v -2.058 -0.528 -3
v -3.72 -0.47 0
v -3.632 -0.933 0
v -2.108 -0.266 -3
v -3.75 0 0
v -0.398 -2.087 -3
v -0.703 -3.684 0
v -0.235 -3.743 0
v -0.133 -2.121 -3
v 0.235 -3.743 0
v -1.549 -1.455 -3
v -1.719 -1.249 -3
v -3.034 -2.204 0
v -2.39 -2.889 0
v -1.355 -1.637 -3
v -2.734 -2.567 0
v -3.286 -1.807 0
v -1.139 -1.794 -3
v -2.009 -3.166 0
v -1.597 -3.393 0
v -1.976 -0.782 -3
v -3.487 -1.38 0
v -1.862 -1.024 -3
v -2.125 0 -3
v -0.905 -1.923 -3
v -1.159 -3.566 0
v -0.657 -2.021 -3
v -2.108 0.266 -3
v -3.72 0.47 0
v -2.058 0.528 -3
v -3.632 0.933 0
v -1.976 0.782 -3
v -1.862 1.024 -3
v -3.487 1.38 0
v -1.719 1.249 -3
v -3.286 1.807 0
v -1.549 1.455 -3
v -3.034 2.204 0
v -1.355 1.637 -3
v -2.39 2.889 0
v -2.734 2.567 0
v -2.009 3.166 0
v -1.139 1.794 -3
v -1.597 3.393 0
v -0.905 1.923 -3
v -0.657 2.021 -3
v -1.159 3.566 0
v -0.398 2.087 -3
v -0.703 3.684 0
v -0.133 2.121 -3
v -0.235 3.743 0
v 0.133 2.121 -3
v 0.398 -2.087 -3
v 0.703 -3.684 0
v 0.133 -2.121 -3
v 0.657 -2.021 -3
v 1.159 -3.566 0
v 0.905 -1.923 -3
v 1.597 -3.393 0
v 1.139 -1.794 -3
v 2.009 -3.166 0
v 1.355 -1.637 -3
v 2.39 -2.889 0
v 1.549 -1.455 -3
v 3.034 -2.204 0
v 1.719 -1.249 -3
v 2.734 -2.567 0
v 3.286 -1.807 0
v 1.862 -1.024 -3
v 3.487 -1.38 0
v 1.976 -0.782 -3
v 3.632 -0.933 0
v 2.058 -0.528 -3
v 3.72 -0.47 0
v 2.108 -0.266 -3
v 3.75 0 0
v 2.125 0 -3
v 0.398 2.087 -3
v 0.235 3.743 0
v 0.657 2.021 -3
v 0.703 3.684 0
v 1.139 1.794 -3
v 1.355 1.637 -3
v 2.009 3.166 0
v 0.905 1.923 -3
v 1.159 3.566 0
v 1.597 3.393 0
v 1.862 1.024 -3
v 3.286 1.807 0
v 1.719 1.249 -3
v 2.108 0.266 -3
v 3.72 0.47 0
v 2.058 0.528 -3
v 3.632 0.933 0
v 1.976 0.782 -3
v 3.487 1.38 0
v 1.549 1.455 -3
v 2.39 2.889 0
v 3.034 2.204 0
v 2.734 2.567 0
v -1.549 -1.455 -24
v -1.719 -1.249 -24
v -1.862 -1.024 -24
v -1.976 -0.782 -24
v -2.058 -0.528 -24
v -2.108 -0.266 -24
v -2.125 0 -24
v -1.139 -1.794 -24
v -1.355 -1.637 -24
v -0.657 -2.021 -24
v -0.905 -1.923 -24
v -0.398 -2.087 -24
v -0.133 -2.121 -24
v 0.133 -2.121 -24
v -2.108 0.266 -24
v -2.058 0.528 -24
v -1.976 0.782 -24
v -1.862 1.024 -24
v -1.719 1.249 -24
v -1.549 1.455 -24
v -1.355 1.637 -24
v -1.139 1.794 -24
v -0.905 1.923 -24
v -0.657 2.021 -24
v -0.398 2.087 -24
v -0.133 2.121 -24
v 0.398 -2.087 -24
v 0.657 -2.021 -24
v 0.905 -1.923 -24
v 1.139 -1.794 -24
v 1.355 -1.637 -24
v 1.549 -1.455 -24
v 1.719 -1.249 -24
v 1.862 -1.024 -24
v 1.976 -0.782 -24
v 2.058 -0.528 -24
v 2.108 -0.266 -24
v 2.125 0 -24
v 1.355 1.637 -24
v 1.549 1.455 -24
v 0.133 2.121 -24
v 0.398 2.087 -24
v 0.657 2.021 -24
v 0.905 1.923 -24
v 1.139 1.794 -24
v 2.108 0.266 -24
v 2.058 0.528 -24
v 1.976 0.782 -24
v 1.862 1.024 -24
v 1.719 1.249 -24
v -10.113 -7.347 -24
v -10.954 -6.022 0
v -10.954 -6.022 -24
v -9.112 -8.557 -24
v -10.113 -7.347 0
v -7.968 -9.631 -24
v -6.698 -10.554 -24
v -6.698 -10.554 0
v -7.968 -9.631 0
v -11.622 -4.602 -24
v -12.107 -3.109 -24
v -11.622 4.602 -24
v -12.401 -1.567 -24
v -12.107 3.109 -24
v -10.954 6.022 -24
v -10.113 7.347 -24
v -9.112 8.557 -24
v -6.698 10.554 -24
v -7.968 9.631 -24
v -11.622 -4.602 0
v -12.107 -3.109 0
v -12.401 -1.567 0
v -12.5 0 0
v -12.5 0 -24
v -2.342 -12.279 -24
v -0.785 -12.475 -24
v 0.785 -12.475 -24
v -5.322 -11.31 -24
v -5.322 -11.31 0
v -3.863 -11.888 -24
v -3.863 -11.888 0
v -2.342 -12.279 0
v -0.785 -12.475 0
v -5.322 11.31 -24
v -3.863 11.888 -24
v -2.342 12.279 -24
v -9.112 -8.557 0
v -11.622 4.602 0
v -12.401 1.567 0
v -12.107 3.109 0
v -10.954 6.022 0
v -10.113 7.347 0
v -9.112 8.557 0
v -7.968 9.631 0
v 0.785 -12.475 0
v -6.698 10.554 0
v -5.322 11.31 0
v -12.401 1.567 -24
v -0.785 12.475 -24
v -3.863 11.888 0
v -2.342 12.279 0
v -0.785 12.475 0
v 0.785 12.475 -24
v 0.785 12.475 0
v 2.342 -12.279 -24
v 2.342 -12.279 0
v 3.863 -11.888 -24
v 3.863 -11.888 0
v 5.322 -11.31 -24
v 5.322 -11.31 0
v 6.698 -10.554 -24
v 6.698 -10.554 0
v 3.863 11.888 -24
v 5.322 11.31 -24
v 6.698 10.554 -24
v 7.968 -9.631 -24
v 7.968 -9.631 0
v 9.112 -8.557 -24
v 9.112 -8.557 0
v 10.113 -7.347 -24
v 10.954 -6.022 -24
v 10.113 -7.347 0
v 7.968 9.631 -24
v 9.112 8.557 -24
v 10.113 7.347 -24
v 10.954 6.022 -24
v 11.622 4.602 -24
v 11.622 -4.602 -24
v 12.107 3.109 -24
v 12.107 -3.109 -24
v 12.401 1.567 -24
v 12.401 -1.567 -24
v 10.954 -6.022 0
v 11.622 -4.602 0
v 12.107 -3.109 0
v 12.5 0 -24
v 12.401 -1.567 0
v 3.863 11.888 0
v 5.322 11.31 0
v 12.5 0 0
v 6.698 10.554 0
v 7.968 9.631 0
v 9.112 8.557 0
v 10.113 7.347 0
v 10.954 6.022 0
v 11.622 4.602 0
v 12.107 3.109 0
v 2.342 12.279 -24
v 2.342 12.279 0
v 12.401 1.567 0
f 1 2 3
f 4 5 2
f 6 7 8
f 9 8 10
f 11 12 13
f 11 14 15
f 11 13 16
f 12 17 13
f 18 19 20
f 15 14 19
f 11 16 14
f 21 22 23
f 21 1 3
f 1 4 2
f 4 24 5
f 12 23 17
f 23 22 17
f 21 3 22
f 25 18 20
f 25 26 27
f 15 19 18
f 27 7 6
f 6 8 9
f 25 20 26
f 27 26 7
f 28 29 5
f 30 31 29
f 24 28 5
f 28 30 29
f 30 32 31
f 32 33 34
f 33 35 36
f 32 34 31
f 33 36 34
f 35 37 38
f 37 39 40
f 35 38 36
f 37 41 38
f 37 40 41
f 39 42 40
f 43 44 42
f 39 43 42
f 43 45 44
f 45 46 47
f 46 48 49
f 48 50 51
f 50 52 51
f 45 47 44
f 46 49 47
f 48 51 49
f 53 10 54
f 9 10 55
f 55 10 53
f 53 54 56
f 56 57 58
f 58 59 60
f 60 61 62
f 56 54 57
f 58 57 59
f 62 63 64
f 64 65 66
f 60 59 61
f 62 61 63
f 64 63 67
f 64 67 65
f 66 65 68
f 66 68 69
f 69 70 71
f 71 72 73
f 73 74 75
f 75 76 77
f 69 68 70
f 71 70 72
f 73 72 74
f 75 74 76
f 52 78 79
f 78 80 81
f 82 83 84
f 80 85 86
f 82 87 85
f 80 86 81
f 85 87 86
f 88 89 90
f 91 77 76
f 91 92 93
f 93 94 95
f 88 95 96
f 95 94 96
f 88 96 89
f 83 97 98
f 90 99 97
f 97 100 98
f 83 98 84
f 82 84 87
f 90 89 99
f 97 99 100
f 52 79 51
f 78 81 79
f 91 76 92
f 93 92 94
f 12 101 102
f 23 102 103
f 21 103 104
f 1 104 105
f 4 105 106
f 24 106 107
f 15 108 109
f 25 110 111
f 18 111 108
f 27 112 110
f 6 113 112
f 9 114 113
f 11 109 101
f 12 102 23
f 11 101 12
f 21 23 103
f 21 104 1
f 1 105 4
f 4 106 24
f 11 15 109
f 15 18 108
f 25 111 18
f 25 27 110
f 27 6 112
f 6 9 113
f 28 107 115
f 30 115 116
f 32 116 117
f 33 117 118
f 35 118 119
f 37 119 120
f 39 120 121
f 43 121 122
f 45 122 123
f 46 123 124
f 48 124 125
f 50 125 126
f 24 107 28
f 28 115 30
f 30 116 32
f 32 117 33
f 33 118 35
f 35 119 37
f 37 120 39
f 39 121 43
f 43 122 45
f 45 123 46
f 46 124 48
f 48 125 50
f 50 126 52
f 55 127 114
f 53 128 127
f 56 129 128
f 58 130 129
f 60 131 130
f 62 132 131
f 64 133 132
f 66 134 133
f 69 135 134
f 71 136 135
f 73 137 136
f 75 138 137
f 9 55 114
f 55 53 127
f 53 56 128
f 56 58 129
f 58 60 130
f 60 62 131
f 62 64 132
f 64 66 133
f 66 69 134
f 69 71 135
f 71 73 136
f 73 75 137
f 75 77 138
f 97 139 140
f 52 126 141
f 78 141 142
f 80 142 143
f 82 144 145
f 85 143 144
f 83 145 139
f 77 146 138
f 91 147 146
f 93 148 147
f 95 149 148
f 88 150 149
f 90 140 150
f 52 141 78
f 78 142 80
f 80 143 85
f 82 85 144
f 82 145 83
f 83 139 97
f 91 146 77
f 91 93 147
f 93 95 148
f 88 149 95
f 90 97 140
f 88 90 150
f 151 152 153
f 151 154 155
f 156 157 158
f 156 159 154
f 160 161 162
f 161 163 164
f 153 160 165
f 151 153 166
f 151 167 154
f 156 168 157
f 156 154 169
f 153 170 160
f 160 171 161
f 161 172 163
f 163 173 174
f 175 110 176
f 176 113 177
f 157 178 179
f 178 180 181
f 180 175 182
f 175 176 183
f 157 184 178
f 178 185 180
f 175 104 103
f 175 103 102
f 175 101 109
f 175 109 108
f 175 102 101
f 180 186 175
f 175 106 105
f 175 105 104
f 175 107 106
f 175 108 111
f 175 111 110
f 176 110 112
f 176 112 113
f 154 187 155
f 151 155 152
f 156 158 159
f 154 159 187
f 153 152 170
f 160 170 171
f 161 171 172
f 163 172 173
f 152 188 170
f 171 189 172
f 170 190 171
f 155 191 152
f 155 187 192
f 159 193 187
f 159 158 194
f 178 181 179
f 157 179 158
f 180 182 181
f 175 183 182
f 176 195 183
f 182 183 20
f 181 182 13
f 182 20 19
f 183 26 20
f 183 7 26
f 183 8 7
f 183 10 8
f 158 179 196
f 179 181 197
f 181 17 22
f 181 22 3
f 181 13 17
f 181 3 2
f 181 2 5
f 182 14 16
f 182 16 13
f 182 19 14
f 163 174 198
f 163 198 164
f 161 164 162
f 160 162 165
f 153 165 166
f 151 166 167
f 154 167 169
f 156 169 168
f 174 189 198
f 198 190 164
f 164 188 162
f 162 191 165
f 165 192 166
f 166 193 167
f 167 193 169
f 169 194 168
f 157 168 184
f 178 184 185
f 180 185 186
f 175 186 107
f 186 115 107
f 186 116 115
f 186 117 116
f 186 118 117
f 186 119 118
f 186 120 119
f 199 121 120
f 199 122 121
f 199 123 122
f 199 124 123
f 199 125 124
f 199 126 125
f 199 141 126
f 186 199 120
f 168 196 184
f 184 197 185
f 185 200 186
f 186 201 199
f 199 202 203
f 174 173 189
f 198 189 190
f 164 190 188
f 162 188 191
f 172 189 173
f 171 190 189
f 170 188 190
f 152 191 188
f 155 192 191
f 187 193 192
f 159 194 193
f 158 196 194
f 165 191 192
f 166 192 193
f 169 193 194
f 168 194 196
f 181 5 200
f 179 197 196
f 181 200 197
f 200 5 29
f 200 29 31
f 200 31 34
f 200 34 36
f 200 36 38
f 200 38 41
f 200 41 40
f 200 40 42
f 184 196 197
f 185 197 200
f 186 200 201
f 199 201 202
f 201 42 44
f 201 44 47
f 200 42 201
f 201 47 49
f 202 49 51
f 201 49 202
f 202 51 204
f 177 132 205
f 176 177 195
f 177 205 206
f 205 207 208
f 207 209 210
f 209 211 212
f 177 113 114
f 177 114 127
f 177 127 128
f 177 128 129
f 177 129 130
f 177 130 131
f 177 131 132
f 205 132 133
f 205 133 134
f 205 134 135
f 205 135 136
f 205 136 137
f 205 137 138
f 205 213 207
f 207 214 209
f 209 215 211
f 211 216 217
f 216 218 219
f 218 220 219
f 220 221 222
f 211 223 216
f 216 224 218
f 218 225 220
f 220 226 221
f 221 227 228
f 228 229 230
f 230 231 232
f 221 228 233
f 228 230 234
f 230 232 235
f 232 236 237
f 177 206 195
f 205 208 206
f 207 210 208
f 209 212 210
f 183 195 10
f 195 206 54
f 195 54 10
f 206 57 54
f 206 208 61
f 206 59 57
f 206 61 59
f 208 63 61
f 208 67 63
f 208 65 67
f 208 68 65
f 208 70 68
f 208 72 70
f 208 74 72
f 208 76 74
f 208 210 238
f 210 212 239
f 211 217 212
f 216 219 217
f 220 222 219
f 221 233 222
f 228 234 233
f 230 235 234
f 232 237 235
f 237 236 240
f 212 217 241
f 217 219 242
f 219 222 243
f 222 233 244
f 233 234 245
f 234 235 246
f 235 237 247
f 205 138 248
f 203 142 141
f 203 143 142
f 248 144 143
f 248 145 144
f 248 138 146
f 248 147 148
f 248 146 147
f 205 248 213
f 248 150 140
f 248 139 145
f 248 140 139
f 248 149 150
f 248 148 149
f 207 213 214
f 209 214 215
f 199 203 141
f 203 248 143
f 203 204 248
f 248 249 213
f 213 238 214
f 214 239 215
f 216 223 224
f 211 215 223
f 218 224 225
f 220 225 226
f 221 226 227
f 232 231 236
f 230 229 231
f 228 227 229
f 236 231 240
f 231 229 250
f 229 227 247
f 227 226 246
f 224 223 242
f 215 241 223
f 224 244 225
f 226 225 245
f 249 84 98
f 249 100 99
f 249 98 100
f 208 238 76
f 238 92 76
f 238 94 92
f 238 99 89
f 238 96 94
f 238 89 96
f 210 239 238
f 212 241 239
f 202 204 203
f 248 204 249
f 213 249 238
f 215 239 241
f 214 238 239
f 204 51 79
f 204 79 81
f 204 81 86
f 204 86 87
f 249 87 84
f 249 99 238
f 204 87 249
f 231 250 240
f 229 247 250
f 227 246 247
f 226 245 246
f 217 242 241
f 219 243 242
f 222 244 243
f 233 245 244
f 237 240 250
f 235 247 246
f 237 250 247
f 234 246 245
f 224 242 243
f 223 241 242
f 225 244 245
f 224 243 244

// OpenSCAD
$fn = 50;

difference() {
	union() {
		translate(v = [0, 0, -24.0]) {
			cylinder(h = 24, r = 12.5);
		}
	}
	union() {
		translate(v = [0, 0, 0]) {
			rotate(a = [0, 0, 0]) {
				difference() {
					union() {
						translate(v = [0, 0, -27.0]) {
							cylinder(h = 27, r = 2.0);
						}
						translate(v = [0, 0, -3]) {
							cylinder(h = 3, r1 = 2.125, r2 = 3.75);
						}
						translate(v = [0, 0, -27.0]) {
							cylinder(h = 27, r = 2.125);
						}
						translate(v = [0, 0, -27.0]) {
							cylinder(h = 27, r = 2.0);
						}
					}
					union();
				}
			}
		}
	}
}
